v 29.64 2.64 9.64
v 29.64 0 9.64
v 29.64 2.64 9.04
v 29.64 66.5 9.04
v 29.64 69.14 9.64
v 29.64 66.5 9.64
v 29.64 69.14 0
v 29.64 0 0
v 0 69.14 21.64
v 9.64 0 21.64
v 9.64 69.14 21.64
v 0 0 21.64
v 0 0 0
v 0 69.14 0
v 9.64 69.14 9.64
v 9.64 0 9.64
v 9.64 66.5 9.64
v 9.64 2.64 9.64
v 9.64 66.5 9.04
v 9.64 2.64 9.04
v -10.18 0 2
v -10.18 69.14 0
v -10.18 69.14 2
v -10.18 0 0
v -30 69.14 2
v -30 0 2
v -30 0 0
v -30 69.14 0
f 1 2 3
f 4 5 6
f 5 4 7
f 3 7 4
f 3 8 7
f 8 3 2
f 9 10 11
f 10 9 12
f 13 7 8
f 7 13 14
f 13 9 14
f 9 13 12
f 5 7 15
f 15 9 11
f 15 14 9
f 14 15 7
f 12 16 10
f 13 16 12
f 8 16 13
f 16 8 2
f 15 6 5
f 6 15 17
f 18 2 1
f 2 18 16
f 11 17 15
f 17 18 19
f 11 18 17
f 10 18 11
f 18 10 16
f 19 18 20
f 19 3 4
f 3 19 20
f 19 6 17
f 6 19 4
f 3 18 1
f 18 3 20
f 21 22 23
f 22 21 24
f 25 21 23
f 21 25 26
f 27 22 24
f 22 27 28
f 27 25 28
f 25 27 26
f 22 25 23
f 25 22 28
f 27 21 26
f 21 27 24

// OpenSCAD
bias = 0.18;

module case() {
    difference () {
        difference () {
            translate([bias, bias, bias])
                cube([30 - 2 * bias, 69.5 - 2 * bias, 22 - 2 * bias]);
                
            translate([10 - bias, 0 - bias, 10 - bias])
                cube([20 + bias, 69.5 + 2 * bias, 12 + bias]);
        };
        
        translate([10 - bias, 3 - bias, 9.4 - bias])
            cube([20 + 2 * bias, 63.5 + 2 * bias, 1 + 2 * bias]);
    };
}

translate([-bias, -bias, -bias])
    case();

translate([-30, 0, 0])
    cube([20 - bias, 69.5 - 2 * bias, 2]);
